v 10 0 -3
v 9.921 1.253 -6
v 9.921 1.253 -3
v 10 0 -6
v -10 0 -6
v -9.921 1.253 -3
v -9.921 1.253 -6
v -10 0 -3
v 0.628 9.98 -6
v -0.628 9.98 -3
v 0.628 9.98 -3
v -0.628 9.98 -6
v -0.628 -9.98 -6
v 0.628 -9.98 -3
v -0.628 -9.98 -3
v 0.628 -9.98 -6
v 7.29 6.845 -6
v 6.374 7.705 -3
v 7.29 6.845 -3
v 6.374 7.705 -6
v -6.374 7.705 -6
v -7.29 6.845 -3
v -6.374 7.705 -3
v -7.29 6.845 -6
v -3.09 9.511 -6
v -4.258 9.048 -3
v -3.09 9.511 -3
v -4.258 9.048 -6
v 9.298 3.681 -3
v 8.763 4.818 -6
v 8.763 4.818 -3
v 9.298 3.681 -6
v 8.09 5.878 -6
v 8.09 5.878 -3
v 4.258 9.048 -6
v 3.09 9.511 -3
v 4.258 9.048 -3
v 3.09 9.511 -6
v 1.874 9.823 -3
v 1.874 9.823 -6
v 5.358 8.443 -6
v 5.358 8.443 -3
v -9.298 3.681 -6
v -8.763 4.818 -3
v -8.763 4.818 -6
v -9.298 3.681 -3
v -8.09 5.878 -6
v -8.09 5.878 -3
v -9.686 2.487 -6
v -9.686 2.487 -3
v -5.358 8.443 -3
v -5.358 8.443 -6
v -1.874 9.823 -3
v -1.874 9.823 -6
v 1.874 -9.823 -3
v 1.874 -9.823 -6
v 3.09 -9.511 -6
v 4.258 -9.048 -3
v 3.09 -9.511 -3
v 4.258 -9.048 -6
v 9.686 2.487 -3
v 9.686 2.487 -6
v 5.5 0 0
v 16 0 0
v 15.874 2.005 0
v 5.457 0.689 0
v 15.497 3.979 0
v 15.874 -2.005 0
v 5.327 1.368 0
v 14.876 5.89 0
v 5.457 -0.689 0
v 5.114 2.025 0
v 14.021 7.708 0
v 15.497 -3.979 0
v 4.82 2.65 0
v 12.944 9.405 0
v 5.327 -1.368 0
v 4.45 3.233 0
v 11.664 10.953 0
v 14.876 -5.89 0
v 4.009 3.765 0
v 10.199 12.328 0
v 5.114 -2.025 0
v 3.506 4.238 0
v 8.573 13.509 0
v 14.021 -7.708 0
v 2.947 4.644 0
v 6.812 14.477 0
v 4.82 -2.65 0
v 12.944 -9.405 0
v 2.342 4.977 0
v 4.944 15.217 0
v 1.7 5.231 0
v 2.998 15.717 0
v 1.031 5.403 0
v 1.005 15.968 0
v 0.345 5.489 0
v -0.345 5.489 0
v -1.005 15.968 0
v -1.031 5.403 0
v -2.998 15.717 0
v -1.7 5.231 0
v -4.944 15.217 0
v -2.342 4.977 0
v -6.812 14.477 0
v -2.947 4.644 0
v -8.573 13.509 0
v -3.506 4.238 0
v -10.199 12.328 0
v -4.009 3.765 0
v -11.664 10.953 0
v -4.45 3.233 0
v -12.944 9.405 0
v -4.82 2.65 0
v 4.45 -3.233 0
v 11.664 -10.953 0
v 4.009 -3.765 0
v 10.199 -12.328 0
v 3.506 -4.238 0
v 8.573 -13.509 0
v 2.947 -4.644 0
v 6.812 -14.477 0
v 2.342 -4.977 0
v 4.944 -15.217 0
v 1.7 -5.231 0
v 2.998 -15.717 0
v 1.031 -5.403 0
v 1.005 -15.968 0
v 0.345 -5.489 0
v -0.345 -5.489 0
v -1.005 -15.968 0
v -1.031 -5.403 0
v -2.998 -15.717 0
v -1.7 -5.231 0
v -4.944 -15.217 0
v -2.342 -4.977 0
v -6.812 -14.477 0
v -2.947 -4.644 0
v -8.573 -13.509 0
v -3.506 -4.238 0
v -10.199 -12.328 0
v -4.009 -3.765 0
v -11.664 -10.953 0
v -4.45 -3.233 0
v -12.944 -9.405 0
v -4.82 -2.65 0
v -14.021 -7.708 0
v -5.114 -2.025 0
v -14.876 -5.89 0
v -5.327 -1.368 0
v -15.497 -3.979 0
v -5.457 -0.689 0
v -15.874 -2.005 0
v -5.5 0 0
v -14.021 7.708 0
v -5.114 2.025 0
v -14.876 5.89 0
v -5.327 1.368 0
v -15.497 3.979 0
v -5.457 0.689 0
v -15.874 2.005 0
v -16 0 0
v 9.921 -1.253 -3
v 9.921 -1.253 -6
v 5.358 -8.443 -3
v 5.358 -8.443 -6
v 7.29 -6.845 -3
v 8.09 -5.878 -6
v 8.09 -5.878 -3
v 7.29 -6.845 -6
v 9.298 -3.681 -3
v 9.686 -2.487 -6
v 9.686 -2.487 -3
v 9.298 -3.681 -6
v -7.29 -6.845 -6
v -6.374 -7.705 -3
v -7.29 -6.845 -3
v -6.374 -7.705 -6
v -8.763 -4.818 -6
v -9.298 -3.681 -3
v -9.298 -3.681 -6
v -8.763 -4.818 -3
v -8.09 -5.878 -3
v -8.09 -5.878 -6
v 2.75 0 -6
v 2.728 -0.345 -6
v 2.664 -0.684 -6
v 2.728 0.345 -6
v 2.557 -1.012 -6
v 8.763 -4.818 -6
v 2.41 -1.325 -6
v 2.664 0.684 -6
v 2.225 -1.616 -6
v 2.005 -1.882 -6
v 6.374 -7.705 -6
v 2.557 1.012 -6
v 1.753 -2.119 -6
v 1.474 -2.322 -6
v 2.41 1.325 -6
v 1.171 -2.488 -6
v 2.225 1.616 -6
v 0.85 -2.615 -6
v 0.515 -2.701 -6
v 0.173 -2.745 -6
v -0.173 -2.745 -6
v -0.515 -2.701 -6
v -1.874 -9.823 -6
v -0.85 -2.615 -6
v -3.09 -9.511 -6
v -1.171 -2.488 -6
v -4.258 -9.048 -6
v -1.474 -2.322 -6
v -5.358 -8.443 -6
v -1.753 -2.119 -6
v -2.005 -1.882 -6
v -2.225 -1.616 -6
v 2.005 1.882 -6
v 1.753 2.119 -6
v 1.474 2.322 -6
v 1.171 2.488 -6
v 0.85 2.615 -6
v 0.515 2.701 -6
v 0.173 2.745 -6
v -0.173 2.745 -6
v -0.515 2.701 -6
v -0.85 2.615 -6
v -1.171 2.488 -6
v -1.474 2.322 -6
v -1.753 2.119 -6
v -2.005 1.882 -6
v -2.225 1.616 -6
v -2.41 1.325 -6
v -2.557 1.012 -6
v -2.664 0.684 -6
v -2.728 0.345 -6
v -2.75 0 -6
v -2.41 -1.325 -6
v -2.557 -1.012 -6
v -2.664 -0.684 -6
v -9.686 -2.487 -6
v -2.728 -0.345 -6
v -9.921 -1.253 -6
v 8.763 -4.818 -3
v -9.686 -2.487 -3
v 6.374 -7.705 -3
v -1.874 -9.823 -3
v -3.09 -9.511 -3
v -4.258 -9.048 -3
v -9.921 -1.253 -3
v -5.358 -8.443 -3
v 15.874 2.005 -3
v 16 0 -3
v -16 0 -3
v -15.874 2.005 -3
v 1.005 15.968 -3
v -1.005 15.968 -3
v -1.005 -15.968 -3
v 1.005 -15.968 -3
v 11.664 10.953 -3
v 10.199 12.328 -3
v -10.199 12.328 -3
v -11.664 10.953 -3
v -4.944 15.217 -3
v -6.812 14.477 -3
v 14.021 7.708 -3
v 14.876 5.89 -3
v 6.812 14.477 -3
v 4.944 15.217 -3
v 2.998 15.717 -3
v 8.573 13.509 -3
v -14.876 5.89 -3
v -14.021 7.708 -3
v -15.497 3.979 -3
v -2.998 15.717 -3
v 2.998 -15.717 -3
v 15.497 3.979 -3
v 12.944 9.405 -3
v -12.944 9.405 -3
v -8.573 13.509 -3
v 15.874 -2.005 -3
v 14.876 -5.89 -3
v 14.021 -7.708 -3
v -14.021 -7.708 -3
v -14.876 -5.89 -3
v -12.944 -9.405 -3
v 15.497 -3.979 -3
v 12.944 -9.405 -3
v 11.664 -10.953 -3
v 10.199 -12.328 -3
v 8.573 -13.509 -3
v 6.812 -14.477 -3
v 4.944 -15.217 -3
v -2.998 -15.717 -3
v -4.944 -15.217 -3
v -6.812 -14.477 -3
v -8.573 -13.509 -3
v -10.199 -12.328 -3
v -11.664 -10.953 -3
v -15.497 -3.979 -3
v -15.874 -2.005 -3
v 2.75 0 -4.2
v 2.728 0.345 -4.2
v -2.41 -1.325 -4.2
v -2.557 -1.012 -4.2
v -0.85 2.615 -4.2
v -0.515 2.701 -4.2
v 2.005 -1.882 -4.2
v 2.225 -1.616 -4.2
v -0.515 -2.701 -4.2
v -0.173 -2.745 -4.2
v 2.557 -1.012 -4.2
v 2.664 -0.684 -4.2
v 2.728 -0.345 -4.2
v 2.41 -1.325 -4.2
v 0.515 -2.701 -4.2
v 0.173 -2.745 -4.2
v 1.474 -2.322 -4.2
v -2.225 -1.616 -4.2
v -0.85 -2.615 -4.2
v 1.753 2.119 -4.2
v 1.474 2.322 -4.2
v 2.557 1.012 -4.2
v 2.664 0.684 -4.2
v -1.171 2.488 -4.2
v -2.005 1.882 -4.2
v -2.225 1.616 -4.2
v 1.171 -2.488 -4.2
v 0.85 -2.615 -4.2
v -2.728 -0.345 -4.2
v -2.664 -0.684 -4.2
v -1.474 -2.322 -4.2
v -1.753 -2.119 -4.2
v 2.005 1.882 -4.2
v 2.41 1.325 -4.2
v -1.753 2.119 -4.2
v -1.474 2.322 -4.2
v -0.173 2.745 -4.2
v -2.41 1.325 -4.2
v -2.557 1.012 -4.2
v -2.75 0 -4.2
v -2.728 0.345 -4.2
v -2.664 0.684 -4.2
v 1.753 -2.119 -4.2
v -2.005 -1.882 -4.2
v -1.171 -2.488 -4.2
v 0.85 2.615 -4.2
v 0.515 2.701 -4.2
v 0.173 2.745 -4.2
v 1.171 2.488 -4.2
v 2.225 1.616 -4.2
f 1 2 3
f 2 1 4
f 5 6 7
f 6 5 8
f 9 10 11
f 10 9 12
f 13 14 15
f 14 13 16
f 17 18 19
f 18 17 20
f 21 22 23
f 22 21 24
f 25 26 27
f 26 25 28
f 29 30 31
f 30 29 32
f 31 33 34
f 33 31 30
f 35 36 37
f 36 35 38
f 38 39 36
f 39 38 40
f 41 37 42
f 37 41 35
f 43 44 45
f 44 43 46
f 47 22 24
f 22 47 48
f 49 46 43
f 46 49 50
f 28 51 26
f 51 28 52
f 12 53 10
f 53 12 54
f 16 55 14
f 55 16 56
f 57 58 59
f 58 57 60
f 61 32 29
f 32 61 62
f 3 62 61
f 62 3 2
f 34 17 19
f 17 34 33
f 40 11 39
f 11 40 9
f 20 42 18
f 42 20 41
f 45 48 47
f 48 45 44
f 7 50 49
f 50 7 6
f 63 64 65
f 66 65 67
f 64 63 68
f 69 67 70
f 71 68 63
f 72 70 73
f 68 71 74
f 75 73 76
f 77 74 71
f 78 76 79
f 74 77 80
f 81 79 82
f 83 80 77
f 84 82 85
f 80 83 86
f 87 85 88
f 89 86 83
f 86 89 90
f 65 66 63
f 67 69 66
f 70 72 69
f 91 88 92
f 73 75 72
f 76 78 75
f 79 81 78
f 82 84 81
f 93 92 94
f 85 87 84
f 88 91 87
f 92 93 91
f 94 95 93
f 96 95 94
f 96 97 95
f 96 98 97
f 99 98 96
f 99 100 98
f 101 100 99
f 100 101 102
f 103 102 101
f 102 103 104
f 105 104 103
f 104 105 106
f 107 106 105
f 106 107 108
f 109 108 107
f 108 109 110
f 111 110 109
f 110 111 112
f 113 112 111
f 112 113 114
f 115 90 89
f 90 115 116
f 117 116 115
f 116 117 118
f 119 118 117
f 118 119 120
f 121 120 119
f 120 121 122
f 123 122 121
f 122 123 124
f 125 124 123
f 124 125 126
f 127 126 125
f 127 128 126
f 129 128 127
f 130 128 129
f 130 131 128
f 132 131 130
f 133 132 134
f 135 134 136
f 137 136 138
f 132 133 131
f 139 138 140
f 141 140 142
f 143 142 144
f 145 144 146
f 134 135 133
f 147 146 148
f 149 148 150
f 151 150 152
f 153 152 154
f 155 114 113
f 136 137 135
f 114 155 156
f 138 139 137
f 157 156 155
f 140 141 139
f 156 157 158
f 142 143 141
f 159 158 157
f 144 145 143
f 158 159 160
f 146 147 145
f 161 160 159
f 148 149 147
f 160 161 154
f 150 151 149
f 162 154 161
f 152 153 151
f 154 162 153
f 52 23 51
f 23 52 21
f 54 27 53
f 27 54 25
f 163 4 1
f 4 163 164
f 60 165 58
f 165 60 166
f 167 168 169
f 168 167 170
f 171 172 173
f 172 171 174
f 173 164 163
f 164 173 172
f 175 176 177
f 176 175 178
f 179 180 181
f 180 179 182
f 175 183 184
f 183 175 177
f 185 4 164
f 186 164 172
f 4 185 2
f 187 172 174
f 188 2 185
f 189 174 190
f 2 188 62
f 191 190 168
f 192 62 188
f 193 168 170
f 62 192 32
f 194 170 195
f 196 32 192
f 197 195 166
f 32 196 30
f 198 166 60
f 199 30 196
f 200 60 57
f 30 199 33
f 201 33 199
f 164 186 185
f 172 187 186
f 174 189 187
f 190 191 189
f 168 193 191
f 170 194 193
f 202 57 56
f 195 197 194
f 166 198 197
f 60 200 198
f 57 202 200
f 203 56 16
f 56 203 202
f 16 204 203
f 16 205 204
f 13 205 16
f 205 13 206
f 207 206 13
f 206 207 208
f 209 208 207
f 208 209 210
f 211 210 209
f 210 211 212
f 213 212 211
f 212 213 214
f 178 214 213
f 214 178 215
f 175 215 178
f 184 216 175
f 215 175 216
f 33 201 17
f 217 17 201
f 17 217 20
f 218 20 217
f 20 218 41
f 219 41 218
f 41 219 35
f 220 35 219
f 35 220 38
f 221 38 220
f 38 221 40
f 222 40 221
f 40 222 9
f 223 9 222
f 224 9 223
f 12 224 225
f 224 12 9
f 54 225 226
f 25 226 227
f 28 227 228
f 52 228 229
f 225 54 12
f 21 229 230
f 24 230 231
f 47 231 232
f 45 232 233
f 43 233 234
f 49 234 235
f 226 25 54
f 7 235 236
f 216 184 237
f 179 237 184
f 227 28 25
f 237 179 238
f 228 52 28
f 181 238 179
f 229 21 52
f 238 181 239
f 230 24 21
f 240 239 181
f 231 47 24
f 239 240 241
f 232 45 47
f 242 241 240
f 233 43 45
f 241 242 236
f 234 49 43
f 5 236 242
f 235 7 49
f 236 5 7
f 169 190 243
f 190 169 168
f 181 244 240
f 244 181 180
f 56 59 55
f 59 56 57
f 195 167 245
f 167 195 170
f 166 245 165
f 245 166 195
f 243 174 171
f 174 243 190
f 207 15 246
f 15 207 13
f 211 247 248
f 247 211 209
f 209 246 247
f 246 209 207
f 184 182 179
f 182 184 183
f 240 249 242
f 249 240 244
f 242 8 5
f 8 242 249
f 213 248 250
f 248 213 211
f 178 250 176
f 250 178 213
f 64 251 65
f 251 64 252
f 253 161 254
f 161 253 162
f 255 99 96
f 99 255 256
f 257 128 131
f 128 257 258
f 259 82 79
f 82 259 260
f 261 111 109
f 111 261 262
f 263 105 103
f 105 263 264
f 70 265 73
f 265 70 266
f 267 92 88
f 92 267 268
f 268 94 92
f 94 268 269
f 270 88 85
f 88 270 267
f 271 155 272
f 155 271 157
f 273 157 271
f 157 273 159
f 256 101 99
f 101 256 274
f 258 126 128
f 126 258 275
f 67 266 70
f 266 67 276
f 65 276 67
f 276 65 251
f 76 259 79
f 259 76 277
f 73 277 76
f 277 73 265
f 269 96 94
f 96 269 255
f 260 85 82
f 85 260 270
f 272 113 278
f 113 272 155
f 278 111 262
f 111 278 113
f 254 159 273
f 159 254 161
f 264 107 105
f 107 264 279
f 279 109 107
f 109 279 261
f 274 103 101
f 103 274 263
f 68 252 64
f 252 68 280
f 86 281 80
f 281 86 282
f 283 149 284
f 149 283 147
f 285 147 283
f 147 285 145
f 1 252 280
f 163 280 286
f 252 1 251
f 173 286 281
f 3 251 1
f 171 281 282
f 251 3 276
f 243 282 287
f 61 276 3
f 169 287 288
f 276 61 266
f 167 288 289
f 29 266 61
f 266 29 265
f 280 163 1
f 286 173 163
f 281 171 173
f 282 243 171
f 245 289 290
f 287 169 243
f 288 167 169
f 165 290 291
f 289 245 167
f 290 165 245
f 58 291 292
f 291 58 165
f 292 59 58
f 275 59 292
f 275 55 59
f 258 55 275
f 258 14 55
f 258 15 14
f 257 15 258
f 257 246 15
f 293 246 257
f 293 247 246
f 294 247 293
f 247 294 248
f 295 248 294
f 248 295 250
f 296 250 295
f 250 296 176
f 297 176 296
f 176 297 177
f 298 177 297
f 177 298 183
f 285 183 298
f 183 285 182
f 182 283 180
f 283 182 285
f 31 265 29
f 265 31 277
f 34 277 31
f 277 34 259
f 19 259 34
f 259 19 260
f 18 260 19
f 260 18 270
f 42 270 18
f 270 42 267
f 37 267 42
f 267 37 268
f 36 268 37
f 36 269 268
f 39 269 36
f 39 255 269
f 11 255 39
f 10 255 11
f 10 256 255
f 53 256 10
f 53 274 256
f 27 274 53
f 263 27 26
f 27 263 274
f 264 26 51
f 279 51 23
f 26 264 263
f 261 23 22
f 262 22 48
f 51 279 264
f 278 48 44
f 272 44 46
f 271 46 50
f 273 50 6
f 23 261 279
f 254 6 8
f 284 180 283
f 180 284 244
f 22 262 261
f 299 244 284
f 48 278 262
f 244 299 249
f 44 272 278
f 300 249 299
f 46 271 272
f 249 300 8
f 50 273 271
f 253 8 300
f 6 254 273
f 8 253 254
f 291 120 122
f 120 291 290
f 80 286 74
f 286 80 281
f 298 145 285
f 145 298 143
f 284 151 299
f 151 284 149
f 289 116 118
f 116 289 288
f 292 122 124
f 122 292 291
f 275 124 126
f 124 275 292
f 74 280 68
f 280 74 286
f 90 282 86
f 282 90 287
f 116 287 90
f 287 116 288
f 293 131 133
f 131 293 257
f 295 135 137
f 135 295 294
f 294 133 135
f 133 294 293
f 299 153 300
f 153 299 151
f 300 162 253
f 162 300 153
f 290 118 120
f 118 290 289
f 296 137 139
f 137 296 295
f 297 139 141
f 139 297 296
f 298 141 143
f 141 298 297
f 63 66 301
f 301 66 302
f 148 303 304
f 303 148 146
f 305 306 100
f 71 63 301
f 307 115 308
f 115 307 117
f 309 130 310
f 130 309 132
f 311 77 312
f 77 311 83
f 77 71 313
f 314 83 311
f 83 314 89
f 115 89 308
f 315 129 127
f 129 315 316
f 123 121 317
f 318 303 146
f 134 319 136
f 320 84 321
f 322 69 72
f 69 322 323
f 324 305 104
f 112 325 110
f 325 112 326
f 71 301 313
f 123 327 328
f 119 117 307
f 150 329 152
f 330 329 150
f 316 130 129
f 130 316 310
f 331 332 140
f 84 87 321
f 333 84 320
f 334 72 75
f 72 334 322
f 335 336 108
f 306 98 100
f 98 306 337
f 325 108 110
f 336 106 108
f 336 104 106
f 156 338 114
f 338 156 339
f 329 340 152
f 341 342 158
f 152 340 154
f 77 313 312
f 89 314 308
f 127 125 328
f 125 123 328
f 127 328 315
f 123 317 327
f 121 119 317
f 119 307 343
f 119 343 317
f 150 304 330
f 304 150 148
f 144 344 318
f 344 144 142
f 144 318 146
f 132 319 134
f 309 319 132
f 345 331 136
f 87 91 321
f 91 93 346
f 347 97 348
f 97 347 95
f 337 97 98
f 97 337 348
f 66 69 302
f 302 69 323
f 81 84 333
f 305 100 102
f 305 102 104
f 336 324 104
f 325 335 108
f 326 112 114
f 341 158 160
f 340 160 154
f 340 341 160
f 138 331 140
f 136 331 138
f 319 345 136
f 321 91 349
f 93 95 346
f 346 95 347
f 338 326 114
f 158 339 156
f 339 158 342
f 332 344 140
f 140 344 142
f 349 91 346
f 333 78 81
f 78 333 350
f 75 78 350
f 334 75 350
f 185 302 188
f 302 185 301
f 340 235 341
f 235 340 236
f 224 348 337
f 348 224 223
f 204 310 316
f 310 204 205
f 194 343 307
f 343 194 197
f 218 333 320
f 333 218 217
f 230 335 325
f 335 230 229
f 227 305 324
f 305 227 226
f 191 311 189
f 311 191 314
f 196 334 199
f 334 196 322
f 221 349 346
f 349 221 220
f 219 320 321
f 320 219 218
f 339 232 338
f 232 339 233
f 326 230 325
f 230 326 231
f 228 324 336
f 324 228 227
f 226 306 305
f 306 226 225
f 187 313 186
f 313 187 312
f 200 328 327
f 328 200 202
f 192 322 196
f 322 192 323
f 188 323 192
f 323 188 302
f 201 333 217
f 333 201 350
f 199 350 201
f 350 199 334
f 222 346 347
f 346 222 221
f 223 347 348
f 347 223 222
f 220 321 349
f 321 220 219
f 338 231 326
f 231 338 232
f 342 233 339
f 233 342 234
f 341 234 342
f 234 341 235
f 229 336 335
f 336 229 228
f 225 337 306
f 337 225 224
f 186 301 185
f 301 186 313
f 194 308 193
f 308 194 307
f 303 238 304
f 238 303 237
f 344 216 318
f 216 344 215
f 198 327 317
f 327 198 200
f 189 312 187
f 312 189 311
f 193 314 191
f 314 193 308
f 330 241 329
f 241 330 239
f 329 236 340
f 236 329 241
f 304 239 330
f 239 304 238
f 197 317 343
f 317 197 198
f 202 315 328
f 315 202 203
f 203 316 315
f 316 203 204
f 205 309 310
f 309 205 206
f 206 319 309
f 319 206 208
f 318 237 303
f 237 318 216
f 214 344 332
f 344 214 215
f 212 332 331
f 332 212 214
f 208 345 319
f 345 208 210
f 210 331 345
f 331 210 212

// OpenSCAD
$fn = 50;


difference() {
	union() {
		translate(v = [0, 0, -6.0000000000]) {
			cylinder(h = 6, r = 10.0000000000);
		}
		translate(v = [0, 0, -3.0000000000]) {
			cylinder(h = 3, r = 16.0000000000);
		}
	}
	union() {
		translate(v = [0, 0, 0]) {
			rotate(a = [0, 0, 0]) {
				difference() {
					union() {
						#translate(v = [0, 0, -6.0000000000]) {
							cylinder(h = 6, r = 2.2500000000);
						}
						#translate(v = [0, 0, -4.2000000000]) {
							cylinder(h = 4.2000000000, r = 10.0000000000, r1 = 2.7500000000, r2 = 5.5000000000);
						}
						#translate(v = [0, 0, -6.0000000000]) {
							cylinder(h = 6, r = 2.7500000000);
						}
						#translate(v = [0, 0, -6.0000000000]) {
							cylinder(h = 6, r = 2.2500000000);
						}
					}
					union();
				}
			}
		}
	}
}
